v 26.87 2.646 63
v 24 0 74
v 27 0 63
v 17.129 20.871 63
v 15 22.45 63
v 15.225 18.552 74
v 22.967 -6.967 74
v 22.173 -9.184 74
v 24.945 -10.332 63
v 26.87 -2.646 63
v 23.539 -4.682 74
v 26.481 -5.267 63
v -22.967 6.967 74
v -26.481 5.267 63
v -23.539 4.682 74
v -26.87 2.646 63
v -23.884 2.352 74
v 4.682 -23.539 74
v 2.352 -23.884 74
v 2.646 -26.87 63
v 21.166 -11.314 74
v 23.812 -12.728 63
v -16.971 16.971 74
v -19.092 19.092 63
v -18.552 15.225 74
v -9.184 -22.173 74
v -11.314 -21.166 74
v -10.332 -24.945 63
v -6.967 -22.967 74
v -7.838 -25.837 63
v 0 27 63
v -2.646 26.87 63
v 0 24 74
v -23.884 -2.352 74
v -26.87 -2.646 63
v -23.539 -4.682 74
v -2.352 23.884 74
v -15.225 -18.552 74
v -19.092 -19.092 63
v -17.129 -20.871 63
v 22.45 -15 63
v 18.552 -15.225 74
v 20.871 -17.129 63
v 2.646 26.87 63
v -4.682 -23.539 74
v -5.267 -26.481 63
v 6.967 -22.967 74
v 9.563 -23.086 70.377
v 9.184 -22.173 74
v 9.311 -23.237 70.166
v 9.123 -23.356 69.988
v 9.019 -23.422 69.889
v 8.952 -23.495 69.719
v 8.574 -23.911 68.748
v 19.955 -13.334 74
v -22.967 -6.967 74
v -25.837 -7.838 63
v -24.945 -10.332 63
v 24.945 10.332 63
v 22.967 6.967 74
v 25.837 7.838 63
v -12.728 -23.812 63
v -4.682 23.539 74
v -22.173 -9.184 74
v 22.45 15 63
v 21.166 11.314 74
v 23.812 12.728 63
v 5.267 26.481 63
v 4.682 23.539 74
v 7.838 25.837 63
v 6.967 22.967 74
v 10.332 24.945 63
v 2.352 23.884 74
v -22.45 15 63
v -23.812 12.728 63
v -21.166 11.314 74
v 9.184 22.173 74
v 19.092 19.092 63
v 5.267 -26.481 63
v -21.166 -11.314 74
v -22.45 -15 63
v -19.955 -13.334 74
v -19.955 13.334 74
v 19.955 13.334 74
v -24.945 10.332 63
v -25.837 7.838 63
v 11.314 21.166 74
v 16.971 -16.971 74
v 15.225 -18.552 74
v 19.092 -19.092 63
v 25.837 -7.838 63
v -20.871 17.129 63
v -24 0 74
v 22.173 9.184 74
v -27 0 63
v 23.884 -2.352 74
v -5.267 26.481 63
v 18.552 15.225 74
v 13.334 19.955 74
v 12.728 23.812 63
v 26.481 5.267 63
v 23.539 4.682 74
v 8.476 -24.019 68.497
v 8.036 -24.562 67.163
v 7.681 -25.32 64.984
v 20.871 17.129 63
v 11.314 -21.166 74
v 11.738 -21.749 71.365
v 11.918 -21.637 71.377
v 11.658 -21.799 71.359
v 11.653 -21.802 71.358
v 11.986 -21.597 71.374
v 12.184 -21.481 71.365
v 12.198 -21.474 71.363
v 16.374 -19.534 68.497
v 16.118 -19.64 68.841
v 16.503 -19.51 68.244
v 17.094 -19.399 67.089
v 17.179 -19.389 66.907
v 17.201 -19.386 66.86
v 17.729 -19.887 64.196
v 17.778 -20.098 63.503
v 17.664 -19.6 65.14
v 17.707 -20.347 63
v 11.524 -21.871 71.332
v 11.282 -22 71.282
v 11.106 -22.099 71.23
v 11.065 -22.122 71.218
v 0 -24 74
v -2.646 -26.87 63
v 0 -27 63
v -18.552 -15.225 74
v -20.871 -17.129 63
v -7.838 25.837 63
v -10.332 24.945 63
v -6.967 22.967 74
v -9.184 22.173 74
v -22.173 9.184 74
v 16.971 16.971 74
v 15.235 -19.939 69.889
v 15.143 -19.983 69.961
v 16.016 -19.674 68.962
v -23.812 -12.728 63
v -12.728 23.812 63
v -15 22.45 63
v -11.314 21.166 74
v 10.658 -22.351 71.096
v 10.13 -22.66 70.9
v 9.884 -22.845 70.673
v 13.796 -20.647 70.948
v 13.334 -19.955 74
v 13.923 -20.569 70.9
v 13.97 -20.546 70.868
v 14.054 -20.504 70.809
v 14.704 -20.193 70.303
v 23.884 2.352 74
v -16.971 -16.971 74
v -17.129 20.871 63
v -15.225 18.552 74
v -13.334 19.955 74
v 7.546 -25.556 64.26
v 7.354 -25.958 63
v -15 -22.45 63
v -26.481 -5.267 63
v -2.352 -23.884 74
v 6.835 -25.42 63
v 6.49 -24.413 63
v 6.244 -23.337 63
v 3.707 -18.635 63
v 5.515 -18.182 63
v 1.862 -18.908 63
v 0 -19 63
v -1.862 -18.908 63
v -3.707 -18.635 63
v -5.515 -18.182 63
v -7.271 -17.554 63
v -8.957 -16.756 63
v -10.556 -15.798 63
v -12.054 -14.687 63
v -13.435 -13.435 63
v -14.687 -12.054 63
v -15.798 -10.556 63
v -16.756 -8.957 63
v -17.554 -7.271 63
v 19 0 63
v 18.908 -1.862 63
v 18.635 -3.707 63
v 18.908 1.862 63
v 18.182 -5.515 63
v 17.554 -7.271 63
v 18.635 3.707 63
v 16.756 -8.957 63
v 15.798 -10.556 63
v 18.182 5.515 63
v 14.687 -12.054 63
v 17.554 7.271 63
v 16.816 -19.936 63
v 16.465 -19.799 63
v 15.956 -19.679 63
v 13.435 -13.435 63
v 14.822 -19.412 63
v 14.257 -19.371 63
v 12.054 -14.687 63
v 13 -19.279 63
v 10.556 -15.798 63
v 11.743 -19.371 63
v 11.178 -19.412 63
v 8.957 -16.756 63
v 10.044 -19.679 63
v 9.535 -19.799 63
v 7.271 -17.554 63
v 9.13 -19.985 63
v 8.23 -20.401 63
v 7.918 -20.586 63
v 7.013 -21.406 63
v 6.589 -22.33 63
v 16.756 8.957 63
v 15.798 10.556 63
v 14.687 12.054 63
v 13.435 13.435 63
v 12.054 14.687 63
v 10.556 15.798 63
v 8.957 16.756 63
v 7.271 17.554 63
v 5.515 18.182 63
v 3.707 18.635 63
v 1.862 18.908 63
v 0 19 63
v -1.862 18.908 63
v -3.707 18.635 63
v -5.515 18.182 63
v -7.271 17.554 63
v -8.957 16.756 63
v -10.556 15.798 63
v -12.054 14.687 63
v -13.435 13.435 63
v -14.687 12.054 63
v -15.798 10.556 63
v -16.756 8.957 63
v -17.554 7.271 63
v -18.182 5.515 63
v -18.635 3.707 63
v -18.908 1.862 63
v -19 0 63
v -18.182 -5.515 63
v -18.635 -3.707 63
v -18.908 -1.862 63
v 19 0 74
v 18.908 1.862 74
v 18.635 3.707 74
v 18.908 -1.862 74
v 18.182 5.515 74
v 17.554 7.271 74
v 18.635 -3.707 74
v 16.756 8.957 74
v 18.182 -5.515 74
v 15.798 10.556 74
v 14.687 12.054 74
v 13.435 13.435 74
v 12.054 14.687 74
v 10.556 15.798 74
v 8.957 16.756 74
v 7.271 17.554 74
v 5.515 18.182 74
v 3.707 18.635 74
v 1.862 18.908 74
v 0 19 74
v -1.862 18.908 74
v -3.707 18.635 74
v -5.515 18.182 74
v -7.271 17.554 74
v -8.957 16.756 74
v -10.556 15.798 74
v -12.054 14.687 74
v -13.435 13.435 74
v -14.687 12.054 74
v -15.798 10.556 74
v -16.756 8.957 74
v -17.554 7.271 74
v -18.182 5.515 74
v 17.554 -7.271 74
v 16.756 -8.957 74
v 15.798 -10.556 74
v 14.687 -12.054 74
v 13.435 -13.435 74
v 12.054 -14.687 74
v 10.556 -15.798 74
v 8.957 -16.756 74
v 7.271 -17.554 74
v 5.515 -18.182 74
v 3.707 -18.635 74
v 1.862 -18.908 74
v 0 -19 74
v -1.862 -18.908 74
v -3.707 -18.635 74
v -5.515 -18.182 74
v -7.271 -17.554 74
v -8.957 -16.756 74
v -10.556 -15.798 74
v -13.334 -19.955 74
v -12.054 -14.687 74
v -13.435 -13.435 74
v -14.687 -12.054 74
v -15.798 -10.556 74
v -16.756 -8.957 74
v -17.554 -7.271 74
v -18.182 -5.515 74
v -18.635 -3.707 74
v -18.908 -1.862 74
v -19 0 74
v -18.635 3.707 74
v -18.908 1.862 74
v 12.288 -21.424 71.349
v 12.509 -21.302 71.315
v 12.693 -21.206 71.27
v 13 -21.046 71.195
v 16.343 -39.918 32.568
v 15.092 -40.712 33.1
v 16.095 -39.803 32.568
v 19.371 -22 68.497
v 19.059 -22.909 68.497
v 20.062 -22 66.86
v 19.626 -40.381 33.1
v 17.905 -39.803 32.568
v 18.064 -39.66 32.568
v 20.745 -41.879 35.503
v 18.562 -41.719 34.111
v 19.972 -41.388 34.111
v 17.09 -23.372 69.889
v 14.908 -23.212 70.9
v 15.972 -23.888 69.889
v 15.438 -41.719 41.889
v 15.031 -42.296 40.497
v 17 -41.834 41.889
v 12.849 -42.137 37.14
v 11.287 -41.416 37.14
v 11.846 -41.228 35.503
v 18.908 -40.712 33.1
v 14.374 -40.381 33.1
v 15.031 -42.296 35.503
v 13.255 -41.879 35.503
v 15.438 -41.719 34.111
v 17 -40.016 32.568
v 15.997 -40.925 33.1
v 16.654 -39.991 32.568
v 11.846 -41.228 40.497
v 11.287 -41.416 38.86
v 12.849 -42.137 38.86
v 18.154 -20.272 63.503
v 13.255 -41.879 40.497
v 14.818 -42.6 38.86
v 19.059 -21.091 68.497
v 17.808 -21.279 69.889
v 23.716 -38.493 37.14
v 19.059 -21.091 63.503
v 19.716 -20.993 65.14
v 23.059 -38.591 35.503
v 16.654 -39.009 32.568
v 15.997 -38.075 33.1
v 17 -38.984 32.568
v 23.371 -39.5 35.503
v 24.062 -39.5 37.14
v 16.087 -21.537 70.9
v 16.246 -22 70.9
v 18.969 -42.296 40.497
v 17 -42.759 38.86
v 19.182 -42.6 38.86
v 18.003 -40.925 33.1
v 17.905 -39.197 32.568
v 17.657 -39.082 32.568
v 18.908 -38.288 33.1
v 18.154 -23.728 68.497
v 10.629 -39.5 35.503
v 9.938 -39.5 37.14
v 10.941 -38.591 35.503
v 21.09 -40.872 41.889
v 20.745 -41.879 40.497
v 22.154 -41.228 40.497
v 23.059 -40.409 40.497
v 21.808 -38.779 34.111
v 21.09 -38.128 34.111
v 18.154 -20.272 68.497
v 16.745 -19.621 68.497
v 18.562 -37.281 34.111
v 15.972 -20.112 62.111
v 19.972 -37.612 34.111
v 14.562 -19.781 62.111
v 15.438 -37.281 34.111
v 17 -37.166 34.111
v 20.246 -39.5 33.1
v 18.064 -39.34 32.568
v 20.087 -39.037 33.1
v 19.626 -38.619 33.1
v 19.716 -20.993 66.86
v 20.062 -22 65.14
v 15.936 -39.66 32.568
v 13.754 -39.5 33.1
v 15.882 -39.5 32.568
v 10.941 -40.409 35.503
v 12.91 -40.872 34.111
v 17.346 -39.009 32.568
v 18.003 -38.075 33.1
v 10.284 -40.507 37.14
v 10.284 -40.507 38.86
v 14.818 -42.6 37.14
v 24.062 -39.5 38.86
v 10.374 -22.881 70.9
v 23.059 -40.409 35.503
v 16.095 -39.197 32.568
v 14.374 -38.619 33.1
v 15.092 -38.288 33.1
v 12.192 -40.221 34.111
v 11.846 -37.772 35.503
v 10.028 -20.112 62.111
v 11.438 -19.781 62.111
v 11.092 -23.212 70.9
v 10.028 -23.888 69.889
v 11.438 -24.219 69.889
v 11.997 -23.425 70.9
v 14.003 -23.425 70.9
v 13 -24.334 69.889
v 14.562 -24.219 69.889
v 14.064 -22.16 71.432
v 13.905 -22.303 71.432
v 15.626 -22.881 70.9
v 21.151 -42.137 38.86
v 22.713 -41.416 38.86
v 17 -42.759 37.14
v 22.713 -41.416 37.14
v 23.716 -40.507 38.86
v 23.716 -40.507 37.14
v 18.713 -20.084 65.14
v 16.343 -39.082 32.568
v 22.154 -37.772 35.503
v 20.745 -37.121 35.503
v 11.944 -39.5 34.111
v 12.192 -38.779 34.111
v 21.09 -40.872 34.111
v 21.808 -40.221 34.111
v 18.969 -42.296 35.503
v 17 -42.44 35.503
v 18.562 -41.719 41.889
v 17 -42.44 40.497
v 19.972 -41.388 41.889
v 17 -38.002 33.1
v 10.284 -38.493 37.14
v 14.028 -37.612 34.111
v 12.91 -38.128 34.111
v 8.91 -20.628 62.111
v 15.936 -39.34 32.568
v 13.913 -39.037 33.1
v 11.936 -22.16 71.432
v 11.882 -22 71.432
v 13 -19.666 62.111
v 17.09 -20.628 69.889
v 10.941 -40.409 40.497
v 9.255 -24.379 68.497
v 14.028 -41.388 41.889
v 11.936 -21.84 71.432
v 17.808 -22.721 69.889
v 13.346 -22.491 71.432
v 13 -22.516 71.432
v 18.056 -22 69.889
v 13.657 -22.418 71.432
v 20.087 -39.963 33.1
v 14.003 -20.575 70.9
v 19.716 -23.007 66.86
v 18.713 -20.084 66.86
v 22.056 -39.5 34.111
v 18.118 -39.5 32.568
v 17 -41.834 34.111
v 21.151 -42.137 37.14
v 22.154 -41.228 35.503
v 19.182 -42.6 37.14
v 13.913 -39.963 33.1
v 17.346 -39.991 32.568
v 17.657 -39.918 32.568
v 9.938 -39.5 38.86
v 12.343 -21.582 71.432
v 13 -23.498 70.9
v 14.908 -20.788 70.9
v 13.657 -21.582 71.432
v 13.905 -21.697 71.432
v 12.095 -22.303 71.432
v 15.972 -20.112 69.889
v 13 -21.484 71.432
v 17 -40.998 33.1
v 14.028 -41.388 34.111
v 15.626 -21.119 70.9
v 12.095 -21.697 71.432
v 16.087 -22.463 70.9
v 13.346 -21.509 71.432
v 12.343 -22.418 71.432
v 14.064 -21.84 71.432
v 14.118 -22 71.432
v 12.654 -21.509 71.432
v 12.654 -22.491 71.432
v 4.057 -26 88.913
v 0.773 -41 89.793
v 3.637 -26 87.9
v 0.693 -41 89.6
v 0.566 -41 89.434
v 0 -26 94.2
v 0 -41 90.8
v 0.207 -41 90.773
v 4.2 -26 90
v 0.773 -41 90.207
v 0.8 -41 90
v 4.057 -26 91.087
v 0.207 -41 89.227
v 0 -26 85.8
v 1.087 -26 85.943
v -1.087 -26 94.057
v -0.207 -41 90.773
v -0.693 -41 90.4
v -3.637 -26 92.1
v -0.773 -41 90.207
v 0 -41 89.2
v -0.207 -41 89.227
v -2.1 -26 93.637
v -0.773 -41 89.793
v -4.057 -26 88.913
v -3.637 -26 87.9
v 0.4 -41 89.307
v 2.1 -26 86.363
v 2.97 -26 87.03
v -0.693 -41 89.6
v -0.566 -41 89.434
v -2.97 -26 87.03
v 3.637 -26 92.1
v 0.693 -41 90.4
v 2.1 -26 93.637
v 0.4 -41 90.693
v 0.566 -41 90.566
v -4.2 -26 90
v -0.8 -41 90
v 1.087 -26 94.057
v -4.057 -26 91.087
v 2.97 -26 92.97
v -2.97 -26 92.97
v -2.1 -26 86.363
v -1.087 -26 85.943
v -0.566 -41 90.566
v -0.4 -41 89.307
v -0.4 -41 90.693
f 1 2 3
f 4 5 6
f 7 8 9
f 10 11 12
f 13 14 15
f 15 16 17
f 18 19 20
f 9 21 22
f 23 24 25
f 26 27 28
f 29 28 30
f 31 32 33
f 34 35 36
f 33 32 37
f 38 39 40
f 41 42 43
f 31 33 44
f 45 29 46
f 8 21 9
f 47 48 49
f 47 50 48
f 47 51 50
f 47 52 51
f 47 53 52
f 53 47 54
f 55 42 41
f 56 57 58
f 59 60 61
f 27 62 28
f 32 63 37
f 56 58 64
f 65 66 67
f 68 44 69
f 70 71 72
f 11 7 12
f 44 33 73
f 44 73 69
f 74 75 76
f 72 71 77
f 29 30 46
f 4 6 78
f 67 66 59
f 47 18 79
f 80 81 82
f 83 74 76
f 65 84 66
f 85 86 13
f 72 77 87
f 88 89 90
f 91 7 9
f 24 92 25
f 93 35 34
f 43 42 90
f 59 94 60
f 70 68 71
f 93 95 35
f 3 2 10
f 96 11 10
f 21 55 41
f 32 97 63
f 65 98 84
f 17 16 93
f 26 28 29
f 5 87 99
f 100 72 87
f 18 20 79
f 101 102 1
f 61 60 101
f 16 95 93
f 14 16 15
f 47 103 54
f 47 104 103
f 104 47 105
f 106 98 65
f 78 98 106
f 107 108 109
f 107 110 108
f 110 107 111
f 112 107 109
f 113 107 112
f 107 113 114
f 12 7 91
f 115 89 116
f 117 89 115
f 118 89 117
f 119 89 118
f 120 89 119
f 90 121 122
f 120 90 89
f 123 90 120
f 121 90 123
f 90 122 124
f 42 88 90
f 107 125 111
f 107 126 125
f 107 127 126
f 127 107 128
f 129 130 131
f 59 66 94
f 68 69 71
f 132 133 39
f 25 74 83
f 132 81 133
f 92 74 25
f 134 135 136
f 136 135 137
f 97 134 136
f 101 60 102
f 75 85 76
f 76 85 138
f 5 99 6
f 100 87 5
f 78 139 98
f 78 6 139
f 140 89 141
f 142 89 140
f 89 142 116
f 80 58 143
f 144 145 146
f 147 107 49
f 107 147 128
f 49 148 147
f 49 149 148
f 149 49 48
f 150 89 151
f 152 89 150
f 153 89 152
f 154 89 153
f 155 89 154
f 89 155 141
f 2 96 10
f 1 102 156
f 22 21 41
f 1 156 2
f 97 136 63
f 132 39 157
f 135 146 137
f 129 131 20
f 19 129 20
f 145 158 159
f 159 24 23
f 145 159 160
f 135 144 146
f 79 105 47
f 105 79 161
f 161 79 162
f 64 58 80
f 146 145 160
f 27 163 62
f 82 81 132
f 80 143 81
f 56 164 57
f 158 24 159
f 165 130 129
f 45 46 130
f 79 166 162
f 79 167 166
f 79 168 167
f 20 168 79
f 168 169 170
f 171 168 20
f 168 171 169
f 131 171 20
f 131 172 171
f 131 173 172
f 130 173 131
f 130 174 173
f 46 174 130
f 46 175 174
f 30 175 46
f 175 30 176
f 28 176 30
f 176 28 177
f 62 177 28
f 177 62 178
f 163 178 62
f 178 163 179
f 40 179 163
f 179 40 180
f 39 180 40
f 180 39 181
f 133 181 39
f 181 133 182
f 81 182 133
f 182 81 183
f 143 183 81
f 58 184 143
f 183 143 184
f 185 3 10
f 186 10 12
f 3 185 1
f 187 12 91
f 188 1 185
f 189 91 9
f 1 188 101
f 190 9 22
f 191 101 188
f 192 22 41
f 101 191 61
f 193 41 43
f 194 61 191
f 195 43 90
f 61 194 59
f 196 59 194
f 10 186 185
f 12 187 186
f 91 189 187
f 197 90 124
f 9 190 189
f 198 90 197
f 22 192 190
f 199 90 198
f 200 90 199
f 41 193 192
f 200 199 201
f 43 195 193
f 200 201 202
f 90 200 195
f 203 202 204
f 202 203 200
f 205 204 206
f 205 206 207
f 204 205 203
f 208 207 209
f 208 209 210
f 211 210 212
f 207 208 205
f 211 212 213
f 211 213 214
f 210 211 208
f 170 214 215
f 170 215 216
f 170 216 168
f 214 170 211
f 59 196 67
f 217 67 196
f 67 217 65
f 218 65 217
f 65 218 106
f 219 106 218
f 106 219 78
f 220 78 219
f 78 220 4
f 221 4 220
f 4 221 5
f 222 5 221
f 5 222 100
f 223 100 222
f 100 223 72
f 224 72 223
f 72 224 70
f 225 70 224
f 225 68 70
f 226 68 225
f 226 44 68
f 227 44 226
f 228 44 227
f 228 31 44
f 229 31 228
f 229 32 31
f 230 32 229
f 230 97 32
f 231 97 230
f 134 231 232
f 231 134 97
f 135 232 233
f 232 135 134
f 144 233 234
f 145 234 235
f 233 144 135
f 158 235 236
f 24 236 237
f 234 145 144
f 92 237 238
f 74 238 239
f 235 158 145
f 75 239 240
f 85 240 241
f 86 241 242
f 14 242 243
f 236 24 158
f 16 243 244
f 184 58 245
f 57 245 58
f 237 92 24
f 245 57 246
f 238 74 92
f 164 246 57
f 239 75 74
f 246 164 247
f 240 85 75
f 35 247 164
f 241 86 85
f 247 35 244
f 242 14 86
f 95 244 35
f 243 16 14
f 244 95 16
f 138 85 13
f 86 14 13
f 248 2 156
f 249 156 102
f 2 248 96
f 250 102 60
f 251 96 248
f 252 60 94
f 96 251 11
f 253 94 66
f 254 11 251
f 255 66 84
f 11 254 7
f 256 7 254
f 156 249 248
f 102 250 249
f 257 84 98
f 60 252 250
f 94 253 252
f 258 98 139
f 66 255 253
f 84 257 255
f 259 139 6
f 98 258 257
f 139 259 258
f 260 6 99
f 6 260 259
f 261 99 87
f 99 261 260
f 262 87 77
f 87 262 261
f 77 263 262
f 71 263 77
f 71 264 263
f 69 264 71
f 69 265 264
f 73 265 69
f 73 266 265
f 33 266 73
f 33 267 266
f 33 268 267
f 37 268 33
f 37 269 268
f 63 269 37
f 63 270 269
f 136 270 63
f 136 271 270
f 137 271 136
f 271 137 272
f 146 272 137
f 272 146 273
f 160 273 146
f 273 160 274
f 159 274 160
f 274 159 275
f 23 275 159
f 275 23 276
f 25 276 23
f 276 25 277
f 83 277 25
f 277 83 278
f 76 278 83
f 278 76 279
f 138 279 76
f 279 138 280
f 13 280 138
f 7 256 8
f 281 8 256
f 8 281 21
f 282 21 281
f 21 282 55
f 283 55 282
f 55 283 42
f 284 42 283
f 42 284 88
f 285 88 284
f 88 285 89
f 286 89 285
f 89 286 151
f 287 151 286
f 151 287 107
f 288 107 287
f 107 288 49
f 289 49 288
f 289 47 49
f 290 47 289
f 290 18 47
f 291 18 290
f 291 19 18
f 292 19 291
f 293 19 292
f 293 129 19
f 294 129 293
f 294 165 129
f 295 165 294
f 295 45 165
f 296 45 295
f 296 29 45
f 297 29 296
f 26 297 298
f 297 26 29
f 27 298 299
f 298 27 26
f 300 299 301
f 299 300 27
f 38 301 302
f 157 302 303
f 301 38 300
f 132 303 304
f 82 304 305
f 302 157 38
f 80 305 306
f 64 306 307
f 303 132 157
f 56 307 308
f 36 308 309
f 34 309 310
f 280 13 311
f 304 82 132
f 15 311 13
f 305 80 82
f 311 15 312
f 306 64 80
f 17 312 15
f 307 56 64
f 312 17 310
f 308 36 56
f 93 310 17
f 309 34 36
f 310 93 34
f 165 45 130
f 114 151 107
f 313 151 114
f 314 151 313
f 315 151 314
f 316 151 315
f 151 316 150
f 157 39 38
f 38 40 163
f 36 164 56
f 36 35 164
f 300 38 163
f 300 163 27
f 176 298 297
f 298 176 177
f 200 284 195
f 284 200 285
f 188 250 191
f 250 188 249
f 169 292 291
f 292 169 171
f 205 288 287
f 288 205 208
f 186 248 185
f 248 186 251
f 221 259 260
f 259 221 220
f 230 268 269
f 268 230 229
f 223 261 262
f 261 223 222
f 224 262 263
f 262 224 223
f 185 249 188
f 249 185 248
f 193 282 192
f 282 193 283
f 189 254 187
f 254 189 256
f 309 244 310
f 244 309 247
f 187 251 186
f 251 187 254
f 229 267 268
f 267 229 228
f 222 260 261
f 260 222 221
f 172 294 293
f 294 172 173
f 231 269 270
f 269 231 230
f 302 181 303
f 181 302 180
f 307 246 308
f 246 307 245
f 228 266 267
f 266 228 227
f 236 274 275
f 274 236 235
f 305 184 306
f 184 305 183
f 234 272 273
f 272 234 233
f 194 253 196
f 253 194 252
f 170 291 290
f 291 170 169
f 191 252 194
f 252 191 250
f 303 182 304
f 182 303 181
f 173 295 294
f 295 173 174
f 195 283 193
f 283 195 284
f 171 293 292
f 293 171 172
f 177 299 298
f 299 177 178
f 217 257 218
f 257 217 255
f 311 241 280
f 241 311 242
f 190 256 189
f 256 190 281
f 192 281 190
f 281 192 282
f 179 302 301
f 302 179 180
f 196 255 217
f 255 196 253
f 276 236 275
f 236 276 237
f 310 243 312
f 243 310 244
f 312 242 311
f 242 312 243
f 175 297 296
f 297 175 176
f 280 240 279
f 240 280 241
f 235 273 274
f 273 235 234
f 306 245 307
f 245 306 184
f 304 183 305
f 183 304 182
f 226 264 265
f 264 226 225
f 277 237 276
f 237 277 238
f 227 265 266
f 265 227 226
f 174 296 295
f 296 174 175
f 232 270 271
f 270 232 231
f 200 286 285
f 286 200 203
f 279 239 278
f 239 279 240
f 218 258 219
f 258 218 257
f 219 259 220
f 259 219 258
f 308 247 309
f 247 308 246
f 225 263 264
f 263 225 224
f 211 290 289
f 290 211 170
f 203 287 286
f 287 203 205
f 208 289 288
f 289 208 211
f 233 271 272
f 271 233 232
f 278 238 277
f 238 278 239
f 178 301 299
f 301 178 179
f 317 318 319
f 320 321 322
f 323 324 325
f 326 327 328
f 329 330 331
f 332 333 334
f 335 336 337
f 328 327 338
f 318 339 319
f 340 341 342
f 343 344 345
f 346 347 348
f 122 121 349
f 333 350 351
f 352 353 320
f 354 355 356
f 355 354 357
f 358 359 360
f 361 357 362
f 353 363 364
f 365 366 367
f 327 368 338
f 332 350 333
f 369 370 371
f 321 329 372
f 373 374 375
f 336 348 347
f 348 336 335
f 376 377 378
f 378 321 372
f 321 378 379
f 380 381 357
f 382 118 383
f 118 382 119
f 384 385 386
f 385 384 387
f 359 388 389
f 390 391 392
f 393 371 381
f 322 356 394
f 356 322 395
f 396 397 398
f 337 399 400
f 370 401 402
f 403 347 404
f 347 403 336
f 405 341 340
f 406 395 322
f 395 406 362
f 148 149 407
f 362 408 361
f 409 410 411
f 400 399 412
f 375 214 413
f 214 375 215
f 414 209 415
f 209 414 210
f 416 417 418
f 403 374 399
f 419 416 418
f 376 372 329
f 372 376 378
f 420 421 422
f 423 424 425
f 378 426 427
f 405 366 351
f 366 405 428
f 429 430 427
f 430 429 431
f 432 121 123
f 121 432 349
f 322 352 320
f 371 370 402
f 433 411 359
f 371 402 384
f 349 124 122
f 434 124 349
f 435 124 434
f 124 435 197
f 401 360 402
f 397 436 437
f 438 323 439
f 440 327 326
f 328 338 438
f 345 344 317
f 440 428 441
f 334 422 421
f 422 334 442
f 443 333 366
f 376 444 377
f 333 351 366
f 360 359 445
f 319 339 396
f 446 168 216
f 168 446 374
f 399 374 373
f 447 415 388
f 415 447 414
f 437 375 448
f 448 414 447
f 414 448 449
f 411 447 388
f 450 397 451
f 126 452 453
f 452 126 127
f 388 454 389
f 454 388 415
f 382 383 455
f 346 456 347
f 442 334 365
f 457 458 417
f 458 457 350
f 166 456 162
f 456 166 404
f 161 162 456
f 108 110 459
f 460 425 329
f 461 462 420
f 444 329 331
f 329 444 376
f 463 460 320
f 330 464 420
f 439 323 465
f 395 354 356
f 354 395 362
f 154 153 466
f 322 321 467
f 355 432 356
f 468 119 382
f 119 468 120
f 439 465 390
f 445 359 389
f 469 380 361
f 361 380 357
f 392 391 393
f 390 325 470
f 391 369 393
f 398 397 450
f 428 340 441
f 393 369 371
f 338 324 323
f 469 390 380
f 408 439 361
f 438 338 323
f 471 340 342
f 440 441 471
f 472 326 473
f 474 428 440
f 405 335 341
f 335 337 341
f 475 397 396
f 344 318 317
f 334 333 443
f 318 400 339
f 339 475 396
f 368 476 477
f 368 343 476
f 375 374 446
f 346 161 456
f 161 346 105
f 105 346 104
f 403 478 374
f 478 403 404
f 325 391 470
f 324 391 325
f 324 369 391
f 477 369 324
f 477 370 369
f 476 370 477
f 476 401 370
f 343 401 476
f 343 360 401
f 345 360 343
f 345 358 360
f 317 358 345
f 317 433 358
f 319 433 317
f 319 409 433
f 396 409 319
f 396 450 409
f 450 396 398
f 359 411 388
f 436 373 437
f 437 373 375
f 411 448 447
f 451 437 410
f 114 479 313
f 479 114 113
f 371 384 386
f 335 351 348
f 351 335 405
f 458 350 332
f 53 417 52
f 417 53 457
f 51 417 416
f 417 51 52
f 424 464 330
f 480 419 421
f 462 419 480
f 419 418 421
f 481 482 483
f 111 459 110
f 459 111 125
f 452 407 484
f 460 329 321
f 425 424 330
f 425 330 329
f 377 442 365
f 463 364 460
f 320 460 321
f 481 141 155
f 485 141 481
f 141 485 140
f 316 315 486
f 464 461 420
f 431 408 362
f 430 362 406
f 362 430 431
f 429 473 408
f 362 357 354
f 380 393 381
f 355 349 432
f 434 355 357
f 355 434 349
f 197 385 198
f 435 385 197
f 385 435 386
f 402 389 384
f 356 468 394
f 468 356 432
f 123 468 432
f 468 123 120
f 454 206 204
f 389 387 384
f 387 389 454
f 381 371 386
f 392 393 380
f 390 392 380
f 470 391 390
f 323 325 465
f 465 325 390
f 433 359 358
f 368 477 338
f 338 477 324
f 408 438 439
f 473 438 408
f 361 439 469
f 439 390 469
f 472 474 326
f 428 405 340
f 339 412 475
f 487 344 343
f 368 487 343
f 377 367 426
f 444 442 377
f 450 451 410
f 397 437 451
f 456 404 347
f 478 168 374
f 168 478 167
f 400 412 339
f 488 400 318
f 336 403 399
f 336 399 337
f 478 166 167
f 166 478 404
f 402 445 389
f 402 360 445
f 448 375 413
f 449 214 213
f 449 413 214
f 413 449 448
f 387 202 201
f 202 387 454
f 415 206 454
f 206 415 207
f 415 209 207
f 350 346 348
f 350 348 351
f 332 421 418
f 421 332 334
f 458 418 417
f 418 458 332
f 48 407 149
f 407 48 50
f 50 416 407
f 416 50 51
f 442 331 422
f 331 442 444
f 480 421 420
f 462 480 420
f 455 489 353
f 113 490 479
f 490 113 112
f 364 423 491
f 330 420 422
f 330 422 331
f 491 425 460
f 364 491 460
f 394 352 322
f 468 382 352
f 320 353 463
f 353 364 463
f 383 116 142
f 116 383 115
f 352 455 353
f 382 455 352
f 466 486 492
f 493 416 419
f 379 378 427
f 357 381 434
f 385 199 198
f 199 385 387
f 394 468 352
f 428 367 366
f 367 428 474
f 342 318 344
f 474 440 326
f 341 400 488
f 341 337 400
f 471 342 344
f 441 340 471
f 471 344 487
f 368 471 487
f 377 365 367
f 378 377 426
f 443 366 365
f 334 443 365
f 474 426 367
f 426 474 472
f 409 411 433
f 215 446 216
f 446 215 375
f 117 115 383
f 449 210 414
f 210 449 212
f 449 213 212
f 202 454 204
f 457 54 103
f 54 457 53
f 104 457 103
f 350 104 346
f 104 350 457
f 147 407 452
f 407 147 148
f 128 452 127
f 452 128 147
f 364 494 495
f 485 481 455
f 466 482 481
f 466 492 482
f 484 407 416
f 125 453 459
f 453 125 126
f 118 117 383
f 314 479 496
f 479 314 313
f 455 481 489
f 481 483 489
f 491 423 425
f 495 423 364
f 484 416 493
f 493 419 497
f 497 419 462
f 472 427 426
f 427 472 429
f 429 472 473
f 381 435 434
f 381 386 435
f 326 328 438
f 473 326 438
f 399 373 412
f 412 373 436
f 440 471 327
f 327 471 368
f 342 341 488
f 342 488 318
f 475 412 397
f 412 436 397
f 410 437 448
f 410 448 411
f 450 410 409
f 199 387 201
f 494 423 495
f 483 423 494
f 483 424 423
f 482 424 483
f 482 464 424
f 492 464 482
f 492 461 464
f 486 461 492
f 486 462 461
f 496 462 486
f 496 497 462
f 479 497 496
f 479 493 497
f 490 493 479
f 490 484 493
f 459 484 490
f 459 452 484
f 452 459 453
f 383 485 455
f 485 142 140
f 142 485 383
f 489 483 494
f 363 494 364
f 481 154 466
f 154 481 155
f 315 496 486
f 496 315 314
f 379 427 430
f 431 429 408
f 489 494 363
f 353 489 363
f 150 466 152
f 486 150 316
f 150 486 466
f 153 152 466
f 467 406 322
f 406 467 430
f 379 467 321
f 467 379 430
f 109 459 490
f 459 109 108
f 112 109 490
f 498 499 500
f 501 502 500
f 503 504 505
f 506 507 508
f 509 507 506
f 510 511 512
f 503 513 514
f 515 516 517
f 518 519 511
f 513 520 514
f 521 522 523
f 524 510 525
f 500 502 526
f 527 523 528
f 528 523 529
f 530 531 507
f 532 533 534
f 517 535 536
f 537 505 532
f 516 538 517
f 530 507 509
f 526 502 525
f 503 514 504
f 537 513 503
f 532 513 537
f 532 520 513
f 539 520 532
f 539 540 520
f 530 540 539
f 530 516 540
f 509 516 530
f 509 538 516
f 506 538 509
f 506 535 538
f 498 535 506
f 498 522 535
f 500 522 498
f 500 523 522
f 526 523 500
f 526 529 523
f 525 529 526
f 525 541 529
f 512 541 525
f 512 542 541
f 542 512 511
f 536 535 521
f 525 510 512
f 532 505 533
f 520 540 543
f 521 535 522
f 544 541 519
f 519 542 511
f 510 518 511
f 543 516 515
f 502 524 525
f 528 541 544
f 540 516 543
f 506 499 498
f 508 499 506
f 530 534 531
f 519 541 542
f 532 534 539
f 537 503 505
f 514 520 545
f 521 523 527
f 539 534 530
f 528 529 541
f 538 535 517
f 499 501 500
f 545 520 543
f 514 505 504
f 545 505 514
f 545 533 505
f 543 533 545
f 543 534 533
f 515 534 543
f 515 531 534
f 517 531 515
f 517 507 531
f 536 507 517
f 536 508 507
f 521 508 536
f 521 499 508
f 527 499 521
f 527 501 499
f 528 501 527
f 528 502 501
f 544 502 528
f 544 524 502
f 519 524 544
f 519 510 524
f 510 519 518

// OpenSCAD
// Rojo: bufanda (aro en el cuello + tira que cae) y nariz
Dc = 84; Dh = 58; zc = Dc / 2 - 6; zh = Dc - 14 + Dh / 2 - 8; $fn = 64;
zc2 = Dc - 16;
translate([0, 0, zc2 - 5]) difference() { cylinder(r1 = 27, r2 = 24, h = 11); translate([0, 0, -1]) cylinder(r = 19, h = 13); }
hull() { translate([13, -22, zc2 - 2]) scale([1.3, 0.6, 1]) sphere(d = 11, $fn = 20); translate([17, -39.5, zc2 - 30]) scale([1.3, 0.6, 1]) sphere(d = 11, $fn = 20); }
translate([0, -Dh / 2 + 3, zh - 1]) rotate([90, 0, 0]) cylinder(r1 = 4.2, r2 = 0.8, h = 15, $fn = 24);
